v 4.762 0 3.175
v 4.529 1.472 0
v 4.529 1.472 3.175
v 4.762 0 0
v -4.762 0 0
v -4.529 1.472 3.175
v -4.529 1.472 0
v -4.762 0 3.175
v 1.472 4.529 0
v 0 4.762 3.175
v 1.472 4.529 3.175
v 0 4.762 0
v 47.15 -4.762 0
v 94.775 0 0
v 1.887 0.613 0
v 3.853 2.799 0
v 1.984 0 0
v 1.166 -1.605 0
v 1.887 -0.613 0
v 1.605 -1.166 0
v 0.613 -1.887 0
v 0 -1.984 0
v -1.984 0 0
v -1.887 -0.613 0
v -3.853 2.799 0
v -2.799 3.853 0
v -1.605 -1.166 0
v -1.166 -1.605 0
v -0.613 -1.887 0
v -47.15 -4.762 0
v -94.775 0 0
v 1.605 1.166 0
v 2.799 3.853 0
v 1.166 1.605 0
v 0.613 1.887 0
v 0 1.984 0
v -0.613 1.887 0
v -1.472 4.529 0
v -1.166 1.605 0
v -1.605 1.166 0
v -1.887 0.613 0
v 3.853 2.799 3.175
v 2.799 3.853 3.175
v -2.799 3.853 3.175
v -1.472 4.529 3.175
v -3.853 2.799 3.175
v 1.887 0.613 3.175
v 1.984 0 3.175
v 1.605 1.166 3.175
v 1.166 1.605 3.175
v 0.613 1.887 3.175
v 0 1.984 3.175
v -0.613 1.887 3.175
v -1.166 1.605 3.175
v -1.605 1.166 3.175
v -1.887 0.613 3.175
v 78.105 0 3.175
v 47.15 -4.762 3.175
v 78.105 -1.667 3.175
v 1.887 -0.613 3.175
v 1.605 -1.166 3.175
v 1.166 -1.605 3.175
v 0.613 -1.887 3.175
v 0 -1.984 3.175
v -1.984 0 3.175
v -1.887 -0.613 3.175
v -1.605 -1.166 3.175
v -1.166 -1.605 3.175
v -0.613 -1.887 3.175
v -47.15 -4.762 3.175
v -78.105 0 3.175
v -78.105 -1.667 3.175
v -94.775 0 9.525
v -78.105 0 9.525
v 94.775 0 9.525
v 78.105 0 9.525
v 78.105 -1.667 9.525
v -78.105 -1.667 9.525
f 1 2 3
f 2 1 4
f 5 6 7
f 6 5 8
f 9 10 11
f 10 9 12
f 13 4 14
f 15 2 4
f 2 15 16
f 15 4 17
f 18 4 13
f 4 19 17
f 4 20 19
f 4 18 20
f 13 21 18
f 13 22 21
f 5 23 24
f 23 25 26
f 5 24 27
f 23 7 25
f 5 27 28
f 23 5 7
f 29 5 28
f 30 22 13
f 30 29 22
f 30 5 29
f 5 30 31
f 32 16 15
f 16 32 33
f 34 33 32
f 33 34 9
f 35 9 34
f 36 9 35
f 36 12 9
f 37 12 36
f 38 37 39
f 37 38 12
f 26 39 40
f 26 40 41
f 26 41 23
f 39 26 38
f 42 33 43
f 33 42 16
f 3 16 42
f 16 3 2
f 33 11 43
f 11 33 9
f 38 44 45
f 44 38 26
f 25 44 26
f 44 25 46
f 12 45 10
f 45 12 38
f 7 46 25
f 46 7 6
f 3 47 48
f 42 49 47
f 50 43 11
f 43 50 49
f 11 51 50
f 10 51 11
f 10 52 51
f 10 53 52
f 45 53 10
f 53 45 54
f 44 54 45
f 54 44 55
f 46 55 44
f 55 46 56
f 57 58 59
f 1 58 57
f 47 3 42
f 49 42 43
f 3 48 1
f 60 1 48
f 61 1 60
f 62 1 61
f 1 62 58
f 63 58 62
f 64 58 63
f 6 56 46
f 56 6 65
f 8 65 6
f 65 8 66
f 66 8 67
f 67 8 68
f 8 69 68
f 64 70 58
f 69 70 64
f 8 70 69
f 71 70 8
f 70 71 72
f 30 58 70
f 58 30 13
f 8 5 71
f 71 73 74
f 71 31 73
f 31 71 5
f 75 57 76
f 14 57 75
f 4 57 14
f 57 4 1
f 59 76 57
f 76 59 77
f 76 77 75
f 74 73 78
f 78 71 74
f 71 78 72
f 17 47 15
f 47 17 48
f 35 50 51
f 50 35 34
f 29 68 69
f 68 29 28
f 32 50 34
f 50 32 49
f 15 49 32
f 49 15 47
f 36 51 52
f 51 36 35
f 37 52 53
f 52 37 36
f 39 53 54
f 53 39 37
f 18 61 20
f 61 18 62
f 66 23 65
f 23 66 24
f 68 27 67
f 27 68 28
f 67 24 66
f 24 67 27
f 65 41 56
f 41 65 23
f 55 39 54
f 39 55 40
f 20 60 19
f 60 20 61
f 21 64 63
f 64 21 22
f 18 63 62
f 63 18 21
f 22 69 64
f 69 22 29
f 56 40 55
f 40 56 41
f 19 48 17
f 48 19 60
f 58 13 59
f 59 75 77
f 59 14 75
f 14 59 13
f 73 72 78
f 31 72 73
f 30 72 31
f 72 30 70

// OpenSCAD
/* Pointer for astrolabe 
 * Copyright (c) 2019 Michael Robinson
 * 
 * This work is licensed under the Creative Commons Attribution 4.0
 *   International License. 
 * To view a copy of this license, visit
 *   http://creativecommons.org/licenses/by/4.0/ 
 */
 
module pointer(hole_diameter, boss_diameter, inner_thickness,  outer_thickness, rete_thickness, rete_diameter, astrolabe_diameter) {
    difference(){
        union(){
            translate([0,0,rete_thickness]) cylinder(d1=boss_diameter,d2=boss_diameter,h=inner_thickness);
            translate([0,-boss_diameter/4,rete_thickness+inner_thickness/2]) cube([astrolabe_diameter,boss_diameter/2,inner_thickness],center=true);
            translate([(astrolabe_diameter+rete_diameter)/4,-boss_diameter/4,(outer_thickness+rete_thickness)/2]) cube([(astrolabe_diameter-rete_diameter)/2,boss_diameter/2,outer_thickness+rete_thickness],center=true);
            translate([-(astrolabe_diameter+rete_diameter)/4,-boss_diameter/4,(outer_thickness+rete_thickness)/2]) cube([(astrolabe_diameter-rete_diameter)/2,boss_diameter/2,outer_thickness+rete_thickness],center=true);
        }
        union(){
            translate([0,0,rete_thickness/2]) cylinder(d1=hole_diameter,d2=hole_diameter,h=outer_thickness);
            translate([astrolabe_diameter/4,-boss_diameter*1.5,-outer_thickness]) rotate(atan2(boss_diameter*2,astrolabe_diameter)) cube([astrolabe_diameter*1.5,boss_diameter,(outer_thickness+rete_thickness)*3]);
            translate([-astrolabe_diameter/4,-boss_diameter*1.5,-outer_thickness]) mirror([1,0,0]) rotate(atan2(boss_diameter*2,astrolabe_diameter)) cube([astrolabe_diameter*1.5,boss_diameter,(outer_thickness+rete_thickness)*3]);
        }
    }
}
 
$fn=20;
scale(25.4) pointer( 0.15625, 0.375, 0.125, 0.375, 0, 6.15, 7.5);
